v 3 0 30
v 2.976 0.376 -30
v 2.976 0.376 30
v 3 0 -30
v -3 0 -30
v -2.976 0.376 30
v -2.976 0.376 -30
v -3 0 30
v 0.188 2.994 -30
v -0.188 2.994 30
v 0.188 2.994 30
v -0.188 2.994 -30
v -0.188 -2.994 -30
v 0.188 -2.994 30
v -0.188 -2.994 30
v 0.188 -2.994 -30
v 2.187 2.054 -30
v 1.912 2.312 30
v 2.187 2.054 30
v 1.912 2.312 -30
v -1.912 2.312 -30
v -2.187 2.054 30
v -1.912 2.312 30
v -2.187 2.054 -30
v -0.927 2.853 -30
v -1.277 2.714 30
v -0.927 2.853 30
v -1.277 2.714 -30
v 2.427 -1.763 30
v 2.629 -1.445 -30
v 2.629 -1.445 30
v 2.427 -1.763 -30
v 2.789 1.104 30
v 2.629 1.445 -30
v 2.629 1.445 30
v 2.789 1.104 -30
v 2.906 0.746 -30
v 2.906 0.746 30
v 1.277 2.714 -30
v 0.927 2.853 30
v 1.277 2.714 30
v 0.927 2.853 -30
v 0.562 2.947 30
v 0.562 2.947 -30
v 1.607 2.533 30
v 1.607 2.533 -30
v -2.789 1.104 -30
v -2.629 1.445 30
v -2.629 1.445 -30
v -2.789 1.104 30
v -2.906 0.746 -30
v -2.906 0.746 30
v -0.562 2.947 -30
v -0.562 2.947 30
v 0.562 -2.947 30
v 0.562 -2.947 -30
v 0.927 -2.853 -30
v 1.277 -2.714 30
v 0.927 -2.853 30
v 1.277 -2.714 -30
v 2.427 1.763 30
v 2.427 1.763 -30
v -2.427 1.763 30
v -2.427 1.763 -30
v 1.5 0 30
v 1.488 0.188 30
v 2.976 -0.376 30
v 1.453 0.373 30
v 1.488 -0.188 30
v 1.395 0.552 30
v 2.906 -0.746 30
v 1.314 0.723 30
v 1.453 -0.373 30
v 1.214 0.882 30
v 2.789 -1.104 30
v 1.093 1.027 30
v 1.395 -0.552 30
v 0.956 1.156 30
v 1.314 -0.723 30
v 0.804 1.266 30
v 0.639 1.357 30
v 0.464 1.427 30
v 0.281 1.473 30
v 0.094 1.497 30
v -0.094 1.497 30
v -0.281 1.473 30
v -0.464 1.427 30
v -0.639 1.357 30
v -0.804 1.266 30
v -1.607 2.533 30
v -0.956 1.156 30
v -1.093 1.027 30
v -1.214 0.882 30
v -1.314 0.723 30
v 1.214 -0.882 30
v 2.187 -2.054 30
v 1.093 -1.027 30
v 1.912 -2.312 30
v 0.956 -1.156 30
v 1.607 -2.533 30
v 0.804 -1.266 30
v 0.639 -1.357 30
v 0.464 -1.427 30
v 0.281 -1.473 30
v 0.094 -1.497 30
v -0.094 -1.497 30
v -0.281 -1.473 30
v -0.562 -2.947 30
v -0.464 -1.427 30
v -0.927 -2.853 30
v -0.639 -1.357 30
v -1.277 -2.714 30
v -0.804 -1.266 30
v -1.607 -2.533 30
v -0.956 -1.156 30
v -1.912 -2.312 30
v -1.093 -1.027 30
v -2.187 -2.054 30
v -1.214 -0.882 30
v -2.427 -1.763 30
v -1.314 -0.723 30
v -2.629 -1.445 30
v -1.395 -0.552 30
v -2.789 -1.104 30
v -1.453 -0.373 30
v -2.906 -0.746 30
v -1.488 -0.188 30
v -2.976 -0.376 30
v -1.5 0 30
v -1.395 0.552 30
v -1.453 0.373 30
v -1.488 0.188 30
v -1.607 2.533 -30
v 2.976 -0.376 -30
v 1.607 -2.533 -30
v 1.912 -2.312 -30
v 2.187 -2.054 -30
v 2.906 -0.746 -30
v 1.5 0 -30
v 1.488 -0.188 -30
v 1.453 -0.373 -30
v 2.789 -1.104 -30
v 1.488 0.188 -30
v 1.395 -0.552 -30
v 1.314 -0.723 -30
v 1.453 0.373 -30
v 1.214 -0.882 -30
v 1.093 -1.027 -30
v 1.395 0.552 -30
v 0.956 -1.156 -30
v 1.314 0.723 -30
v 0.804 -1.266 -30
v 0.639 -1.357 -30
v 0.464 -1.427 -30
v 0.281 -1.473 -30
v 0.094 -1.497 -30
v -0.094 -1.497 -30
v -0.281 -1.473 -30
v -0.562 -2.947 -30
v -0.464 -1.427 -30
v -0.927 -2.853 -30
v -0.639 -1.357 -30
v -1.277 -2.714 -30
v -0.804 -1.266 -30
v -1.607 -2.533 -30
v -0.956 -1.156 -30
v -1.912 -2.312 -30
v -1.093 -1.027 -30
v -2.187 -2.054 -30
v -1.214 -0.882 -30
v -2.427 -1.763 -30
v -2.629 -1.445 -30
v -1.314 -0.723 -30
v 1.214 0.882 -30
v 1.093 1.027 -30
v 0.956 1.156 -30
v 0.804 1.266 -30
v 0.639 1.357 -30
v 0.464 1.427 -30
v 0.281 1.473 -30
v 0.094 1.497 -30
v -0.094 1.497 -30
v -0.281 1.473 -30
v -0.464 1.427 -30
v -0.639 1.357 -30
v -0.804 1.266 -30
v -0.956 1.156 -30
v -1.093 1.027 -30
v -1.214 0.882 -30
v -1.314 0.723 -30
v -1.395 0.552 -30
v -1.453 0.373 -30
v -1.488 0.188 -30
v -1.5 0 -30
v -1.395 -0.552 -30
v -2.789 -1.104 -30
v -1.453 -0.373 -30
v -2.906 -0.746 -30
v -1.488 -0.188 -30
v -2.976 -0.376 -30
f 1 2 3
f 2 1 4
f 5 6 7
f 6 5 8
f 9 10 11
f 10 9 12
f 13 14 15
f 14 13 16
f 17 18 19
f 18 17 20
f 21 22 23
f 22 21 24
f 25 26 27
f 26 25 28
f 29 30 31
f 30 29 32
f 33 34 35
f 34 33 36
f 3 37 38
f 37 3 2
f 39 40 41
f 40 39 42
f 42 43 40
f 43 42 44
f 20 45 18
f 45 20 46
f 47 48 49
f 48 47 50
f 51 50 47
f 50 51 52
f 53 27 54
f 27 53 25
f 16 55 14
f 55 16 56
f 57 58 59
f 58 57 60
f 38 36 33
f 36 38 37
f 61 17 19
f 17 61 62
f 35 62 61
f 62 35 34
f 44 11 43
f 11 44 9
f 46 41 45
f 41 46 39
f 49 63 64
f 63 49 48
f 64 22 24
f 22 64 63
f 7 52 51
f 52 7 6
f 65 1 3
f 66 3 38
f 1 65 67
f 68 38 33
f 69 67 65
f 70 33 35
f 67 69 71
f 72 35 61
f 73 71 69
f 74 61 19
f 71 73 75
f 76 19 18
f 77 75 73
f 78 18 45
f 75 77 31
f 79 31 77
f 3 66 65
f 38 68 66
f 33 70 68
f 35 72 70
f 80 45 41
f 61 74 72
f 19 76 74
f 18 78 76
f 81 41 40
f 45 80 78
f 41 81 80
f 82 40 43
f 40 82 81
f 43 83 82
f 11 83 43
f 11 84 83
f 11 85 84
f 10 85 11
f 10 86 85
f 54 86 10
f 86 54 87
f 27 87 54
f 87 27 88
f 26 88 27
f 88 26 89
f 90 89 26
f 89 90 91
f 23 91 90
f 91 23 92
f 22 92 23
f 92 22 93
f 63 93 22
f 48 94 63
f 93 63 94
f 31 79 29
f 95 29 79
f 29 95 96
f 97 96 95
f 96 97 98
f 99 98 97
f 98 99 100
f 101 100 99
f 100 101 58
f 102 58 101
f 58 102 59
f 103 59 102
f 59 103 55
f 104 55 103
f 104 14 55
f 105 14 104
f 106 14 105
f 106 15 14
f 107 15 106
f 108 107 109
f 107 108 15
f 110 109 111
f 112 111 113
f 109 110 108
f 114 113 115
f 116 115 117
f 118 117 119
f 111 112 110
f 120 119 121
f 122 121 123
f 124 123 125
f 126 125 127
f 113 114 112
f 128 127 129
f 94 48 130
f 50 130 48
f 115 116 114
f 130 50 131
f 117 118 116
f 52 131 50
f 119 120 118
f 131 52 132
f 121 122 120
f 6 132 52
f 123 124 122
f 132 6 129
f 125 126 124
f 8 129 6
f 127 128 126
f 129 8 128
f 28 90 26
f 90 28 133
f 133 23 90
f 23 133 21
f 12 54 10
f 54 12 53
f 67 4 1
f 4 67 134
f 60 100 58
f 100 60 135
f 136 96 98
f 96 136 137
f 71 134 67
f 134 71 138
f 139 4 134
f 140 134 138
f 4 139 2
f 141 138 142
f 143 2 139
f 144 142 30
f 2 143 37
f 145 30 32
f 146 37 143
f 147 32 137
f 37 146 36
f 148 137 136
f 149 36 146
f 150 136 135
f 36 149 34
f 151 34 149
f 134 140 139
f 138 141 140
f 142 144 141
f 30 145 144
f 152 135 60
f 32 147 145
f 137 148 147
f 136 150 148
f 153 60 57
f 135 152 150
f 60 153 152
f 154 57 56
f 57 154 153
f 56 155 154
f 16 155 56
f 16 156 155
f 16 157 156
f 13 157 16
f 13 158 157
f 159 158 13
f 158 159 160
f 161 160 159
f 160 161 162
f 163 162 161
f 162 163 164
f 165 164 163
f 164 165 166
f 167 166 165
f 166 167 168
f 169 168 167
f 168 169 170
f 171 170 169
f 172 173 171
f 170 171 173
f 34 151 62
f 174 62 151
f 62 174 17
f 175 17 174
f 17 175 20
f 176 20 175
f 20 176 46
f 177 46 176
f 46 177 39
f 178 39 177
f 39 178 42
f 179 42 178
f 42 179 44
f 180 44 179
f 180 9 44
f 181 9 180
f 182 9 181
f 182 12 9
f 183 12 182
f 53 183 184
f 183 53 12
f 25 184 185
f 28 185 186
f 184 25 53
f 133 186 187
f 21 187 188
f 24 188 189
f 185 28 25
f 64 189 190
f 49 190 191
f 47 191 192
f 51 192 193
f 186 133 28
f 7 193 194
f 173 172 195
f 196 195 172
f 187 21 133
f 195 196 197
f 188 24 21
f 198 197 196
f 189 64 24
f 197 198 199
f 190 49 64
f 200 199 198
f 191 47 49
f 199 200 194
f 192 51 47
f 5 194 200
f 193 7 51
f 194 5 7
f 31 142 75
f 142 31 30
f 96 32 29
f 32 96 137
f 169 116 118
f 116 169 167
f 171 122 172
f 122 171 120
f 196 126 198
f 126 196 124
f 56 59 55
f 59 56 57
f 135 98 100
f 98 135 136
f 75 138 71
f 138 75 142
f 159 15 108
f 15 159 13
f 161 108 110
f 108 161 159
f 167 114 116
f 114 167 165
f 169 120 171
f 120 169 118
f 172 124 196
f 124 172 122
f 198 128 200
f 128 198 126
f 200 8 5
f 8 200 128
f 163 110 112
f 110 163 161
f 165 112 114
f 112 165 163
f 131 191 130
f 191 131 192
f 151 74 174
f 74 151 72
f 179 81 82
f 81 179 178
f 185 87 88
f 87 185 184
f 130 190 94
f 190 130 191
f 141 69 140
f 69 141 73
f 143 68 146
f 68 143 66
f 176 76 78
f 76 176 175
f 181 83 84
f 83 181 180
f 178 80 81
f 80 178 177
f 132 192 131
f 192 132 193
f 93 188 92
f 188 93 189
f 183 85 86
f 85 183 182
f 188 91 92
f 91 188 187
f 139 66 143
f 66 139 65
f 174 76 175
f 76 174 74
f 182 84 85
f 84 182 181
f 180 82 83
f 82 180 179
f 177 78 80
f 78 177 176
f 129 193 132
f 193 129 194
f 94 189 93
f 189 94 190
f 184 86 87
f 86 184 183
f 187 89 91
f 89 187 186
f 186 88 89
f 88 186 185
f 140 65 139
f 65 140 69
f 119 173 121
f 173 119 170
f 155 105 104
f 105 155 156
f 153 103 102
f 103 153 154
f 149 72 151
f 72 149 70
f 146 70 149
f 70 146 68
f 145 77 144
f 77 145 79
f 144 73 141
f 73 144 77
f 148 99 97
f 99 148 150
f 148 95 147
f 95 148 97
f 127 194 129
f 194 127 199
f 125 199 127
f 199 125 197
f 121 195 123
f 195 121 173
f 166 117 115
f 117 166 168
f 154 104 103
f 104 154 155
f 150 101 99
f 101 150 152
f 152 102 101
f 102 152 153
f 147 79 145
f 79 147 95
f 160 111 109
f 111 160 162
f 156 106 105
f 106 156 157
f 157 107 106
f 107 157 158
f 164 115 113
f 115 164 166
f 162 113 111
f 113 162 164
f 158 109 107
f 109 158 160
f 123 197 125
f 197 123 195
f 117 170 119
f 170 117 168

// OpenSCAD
$fn = 50;


difference() {
	union() {
		translate(v = [0, 0, -30.0000000000]) {
			cylinder(h = 60, r = 3.0000000000);
		}
	}
	union() {
		translate(v = [0, 0, -100.0000000000]) {
			cylinder(h = 200, r = 1.5000000000);
		}
	}
}
